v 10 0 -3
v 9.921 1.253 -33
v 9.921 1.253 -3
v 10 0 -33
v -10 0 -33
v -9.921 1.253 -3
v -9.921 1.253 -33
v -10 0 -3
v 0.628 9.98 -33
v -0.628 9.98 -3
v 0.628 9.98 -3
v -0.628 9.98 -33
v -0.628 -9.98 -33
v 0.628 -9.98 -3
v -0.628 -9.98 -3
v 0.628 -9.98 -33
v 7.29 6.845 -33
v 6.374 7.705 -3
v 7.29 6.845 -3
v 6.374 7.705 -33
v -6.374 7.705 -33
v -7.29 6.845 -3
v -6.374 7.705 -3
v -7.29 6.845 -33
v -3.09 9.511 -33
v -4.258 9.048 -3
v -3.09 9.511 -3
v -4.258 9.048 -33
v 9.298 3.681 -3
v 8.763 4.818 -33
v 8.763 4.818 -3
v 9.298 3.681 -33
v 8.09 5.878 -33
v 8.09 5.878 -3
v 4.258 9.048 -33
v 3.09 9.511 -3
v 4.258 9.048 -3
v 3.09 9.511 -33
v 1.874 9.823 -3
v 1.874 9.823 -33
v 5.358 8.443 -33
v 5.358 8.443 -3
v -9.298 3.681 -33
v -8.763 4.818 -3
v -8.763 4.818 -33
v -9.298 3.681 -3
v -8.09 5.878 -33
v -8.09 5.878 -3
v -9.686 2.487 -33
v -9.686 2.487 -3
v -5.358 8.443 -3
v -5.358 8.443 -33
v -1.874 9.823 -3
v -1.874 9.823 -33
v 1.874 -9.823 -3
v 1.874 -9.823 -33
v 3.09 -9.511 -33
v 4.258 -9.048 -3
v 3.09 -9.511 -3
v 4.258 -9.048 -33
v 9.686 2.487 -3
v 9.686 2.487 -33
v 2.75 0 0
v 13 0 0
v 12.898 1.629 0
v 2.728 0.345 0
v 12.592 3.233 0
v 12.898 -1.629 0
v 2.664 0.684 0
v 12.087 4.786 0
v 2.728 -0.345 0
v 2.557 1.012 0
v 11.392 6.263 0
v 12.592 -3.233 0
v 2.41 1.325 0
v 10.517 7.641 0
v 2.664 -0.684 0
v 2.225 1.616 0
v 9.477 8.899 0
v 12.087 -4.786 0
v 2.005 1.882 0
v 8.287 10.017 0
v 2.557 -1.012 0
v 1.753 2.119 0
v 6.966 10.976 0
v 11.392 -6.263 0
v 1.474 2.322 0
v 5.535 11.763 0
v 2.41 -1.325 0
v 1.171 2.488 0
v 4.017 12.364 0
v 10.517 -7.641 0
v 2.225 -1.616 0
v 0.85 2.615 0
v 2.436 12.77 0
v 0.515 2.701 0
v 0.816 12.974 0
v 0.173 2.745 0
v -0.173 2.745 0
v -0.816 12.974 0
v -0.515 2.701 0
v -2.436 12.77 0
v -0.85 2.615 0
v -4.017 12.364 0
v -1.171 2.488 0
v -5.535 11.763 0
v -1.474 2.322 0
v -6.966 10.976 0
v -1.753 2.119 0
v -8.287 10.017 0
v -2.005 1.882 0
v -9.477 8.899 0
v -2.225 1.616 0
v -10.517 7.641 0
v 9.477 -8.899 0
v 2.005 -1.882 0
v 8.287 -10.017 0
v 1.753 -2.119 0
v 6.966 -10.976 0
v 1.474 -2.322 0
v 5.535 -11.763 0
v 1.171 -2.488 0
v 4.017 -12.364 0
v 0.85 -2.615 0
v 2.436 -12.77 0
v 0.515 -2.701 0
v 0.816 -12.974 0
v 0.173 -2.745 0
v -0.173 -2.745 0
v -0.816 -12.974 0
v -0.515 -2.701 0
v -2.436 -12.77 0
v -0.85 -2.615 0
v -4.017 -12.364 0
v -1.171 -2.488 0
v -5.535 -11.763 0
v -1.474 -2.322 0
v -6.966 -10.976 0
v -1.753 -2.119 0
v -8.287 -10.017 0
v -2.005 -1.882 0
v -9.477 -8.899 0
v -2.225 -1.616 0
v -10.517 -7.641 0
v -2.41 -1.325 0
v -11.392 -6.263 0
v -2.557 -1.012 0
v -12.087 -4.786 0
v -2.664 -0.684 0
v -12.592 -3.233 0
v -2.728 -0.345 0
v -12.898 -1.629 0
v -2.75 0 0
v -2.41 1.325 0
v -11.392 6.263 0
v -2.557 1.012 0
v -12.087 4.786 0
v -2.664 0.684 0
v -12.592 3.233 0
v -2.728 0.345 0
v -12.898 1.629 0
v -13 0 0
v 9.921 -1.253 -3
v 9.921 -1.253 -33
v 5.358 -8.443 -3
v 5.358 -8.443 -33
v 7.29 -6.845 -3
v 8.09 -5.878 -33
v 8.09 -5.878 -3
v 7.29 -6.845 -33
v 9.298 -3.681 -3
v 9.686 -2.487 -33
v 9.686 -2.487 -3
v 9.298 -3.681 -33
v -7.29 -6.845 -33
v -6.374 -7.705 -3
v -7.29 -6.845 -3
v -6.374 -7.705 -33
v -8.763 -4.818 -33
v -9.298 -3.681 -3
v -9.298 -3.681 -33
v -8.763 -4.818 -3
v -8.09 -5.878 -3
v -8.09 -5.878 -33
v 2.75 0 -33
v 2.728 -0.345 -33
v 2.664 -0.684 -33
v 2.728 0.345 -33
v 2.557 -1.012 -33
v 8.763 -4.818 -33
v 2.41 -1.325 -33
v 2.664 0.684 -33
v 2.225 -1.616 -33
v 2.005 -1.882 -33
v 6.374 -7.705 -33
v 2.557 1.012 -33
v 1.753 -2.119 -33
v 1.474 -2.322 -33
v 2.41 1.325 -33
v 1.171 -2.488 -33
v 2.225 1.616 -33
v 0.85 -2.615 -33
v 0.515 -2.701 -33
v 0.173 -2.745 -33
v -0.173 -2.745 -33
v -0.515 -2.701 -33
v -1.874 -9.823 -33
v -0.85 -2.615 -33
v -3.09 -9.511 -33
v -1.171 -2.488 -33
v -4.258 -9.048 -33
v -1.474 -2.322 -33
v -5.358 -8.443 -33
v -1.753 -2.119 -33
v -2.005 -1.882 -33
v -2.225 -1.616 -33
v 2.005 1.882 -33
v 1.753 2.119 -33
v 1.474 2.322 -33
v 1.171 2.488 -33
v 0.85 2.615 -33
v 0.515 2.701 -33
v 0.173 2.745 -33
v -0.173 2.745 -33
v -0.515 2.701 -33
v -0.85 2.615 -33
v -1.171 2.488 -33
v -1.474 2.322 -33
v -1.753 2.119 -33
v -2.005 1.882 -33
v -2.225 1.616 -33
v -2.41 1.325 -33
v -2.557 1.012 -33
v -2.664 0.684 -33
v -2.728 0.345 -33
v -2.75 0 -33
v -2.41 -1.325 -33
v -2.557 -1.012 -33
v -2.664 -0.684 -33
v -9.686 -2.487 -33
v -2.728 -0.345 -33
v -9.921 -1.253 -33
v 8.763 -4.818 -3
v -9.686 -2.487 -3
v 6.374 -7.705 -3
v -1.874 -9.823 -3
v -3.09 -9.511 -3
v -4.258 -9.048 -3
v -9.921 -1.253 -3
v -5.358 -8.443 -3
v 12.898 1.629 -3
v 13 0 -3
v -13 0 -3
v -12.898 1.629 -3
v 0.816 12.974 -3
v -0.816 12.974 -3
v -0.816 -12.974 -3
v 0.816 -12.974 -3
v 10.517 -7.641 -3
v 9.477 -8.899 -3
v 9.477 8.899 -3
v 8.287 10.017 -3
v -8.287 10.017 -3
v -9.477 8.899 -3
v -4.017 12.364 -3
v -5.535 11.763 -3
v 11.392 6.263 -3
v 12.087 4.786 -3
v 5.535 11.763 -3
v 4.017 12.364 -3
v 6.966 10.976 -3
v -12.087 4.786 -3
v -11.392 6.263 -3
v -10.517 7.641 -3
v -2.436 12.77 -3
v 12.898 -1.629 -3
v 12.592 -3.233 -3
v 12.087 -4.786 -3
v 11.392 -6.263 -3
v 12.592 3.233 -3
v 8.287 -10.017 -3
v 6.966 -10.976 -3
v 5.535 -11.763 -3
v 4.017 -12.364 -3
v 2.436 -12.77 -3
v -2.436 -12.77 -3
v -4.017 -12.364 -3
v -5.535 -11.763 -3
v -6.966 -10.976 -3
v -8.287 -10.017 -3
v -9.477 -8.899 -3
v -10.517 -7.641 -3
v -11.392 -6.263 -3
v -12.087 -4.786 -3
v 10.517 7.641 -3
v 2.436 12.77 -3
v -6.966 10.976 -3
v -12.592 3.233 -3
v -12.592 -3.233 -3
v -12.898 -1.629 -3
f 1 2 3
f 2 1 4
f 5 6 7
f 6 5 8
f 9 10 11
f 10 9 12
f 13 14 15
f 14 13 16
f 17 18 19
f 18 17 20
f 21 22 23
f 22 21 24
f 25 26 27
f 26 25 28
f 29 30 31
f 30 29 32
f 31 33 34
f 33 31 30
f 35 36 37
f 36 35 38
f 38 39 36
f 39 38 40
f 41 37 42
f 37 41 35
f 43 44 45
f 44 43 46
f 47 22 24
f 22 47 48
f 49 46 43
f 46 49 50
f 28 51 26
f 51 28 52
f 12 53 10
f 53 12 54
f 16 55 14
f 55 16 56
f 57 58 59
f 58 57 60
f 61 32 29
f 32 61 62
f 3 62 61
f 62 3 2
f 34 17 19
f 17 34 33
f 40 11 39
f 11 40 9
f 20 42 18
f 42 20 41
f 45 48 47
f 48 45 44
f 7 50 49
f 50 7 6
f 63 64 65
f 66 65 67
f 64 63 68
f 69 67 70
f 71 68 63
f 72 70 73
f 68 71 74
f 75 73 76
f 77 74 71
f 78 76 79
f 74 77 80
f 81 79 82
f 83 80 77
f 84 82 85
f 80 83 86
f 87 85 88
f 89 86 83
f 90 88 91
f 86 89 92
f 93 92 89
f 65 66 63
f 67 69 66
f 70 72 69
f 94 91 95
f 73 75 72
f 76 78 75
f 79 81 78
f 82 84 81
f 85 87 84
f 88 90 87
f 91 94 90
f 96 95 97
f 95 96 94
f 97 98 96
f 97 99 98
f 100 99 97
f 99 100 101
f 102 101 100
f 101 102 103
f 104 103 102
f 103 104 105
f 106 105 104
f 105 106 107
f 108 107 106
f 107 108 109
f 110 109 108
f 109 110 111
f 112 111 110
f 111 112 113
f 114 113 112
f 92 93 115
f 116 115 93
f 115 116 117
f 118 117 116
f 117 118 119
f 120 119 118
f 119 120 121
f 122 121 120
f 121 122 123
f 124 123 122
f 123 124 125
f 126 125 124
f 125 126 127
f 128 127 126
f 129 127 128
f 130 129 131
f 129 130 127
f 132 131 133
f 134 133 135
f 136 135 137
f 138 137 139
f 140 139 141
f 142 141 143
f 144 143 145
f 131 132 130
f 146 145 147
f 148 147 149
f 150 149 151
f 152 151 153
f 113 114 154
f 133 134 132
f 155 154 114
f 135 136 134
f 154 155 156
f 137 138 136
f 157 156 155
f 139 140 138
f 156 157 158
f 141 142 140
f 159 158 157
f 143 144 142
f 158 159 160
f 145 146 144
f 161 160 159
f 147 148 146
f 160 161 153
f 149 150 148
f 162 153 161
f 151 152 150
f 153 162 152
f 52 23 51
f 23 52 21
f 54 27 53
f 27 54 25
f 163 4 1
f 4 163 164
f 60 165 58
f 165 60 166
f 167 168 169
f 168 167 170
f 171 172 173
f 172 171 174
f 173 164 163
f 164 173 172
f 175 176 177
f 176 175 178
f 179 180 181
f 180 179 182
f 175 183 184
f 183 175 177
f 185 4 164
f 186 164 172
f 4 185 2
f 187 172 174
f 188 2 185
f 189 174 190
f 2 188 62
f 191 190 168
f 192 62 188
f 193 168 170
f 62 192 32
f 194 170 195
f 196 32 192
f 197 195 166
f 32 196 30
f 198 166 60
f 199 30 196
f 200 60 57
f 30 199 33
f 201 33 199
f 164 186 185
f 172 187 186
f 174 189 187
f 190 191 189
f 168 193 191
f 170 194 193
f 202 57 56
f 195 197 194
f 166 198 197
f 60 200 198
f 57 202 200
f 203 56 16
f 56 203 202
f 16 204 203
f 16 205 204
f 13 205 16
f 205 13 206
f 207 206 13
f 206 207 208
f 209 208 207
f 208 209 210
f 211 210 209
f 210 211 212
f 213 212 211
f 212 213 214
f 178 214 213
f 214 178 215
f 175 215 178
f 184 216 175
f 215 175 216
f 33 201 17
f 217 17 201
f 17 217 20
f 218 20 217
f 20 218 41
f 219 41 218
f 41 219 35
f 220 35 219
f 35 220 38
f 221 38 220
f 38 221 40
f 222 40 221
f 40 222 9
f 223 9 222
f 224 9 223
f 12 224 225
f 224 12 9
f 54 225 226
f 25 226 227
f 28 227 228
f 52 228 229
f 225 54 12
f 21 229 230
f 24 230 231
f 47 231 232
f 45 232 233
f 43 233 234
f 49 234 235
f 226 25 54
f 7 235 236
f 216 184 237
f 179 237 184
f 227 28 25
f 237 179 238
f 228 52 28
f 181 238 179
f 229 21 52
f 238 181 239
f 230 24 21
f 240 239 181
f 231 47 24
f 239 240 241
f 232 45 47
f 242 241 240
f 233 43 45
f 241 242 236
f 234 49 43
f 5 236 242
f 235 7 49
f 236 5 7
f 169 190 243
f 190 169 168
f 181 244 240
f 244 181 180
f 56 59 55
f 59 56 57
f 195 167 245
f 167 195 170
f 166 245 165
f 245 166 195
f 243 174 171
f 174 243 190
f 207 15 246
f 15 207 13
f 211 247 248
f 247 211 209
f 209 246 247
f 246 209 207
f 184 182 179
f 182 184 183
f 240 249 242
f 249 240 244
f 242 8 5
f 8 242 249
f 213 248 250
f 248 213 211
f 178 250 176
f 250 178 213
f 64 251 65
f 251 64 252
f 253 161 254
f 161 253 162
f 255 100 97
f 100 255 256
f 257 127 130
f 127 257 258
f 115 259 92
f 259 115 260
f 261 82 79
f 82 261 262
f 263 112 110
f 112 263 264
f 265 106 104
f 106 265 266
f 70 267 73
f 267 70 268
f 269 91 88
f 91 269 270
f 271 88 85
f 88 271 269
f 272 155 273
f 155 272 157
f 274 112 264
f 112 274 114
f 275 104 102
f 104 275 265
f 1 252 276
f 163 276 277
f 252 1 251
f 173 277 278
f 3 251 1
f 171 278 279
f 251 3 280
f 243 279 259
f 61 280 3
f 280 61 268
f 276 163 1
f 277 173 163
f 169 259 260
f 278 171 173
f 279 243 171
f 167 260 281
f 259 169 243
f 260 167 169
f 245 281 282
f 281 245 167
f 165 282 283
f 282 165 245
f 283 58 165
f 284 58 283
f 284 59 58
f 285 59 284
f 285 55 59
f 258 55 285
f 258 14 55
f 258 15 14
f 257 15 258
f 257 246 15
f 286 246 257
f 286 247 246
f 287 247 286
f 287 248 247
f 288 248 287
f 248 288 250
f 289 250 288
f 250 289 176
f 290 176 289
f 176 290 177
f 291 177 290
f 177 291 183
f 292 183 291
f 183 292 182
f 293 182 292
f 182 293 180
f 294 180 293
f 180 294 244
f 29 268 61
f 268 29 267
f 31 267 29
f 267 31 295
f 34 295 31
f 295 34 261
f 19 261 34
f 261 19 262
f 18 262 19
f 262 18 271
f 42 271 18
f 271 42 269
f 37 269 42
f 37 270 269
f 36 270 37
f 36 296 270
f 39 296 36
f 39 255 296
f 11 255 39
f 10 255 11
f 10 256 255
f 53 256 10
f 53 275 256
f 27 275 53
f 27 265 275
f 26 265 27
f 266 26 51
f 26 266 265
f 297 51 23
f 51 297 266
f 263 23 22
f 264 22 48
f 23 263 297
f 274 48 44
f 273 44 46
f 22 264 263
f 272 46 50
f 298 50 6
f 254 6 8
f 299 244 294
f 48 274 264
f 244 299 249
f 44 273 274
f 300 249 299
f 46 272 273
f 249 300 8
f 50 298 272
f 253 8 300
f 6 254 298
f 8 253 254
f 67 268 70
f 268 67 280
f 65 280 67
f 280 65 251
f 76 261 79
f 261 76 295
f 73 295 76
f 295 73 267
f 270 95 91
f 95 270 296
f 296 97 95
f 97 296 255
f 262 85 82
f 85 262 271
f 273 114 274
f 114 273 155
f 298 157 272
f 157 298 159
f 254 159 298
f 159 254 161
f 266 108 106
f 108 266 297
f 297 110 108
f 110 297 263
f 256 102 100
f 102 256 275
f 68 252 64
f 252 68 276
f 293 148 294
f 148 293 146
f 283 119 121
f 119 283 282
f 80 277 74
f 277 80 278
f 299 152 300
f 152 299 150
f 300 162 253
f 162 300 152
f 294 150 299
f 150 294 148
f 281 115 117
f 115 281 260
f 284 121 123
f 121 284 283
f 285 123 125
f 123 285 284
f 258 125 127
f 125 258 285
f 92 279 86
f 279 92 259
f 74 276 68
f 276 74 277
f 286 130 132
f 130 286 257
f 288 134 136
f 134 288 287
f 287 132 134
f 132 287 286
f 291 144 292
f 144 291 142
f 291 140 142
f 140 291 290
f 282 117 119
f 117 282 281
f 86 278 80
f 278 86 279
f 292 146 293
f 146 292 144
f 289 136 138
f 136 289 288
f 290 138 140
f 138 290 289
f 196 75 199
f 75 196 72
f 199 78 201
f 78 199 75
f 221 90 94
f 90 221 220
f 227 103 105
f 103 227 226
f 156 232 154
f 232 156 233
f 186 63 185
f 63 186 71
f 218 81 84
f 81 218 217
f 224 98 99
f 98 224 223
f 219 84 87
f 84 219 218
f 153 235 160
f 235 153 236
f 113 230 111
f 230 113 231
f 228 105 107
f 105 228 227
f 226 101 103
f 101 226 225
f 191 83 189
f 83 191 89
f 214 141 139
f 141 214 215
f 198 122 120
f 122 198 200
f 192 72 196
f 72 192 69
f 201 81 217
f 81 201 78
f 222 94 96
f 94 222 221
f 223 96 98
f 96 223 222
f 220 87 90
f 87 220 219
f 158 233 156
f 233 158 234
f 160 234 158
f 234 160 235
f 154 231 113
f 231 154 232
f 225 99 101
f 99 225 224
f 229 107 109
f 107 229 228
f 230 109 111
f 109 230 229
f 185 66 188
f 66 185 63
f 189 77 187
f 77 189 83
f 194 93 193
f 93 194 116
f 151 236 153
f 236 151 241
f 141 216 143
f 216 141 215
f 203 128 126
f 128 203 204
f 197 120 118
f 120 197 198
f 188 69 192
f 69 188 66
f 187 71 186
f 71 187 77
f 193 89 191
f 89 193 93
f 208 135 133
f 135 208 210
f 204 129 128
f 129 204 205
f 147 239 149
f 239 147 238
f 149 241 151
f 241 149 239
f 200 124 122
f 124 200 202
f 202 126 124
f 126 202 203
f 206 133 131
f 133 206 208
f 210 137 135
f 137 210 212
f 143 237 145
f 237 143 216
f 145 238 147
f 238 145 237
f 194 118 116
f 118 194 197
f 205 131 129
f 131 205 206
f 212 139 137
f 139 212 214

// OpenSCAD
$fn = 50;


difference() {
	union() {
		translate(v = [0, 0, -33.0000000000]) {
			cylinder(h = 33, r = 10.0000000000);
		}
		translate(v = [0, 0, -3.0000000000]) {
			cylinder(h = 3, r = 13.0000000000);
		}
	}
	union() {
		#translate(v = [0, 0, -33]) {
			cylinder(h = 33, r = 2.7500000000);
		}
	}
}
